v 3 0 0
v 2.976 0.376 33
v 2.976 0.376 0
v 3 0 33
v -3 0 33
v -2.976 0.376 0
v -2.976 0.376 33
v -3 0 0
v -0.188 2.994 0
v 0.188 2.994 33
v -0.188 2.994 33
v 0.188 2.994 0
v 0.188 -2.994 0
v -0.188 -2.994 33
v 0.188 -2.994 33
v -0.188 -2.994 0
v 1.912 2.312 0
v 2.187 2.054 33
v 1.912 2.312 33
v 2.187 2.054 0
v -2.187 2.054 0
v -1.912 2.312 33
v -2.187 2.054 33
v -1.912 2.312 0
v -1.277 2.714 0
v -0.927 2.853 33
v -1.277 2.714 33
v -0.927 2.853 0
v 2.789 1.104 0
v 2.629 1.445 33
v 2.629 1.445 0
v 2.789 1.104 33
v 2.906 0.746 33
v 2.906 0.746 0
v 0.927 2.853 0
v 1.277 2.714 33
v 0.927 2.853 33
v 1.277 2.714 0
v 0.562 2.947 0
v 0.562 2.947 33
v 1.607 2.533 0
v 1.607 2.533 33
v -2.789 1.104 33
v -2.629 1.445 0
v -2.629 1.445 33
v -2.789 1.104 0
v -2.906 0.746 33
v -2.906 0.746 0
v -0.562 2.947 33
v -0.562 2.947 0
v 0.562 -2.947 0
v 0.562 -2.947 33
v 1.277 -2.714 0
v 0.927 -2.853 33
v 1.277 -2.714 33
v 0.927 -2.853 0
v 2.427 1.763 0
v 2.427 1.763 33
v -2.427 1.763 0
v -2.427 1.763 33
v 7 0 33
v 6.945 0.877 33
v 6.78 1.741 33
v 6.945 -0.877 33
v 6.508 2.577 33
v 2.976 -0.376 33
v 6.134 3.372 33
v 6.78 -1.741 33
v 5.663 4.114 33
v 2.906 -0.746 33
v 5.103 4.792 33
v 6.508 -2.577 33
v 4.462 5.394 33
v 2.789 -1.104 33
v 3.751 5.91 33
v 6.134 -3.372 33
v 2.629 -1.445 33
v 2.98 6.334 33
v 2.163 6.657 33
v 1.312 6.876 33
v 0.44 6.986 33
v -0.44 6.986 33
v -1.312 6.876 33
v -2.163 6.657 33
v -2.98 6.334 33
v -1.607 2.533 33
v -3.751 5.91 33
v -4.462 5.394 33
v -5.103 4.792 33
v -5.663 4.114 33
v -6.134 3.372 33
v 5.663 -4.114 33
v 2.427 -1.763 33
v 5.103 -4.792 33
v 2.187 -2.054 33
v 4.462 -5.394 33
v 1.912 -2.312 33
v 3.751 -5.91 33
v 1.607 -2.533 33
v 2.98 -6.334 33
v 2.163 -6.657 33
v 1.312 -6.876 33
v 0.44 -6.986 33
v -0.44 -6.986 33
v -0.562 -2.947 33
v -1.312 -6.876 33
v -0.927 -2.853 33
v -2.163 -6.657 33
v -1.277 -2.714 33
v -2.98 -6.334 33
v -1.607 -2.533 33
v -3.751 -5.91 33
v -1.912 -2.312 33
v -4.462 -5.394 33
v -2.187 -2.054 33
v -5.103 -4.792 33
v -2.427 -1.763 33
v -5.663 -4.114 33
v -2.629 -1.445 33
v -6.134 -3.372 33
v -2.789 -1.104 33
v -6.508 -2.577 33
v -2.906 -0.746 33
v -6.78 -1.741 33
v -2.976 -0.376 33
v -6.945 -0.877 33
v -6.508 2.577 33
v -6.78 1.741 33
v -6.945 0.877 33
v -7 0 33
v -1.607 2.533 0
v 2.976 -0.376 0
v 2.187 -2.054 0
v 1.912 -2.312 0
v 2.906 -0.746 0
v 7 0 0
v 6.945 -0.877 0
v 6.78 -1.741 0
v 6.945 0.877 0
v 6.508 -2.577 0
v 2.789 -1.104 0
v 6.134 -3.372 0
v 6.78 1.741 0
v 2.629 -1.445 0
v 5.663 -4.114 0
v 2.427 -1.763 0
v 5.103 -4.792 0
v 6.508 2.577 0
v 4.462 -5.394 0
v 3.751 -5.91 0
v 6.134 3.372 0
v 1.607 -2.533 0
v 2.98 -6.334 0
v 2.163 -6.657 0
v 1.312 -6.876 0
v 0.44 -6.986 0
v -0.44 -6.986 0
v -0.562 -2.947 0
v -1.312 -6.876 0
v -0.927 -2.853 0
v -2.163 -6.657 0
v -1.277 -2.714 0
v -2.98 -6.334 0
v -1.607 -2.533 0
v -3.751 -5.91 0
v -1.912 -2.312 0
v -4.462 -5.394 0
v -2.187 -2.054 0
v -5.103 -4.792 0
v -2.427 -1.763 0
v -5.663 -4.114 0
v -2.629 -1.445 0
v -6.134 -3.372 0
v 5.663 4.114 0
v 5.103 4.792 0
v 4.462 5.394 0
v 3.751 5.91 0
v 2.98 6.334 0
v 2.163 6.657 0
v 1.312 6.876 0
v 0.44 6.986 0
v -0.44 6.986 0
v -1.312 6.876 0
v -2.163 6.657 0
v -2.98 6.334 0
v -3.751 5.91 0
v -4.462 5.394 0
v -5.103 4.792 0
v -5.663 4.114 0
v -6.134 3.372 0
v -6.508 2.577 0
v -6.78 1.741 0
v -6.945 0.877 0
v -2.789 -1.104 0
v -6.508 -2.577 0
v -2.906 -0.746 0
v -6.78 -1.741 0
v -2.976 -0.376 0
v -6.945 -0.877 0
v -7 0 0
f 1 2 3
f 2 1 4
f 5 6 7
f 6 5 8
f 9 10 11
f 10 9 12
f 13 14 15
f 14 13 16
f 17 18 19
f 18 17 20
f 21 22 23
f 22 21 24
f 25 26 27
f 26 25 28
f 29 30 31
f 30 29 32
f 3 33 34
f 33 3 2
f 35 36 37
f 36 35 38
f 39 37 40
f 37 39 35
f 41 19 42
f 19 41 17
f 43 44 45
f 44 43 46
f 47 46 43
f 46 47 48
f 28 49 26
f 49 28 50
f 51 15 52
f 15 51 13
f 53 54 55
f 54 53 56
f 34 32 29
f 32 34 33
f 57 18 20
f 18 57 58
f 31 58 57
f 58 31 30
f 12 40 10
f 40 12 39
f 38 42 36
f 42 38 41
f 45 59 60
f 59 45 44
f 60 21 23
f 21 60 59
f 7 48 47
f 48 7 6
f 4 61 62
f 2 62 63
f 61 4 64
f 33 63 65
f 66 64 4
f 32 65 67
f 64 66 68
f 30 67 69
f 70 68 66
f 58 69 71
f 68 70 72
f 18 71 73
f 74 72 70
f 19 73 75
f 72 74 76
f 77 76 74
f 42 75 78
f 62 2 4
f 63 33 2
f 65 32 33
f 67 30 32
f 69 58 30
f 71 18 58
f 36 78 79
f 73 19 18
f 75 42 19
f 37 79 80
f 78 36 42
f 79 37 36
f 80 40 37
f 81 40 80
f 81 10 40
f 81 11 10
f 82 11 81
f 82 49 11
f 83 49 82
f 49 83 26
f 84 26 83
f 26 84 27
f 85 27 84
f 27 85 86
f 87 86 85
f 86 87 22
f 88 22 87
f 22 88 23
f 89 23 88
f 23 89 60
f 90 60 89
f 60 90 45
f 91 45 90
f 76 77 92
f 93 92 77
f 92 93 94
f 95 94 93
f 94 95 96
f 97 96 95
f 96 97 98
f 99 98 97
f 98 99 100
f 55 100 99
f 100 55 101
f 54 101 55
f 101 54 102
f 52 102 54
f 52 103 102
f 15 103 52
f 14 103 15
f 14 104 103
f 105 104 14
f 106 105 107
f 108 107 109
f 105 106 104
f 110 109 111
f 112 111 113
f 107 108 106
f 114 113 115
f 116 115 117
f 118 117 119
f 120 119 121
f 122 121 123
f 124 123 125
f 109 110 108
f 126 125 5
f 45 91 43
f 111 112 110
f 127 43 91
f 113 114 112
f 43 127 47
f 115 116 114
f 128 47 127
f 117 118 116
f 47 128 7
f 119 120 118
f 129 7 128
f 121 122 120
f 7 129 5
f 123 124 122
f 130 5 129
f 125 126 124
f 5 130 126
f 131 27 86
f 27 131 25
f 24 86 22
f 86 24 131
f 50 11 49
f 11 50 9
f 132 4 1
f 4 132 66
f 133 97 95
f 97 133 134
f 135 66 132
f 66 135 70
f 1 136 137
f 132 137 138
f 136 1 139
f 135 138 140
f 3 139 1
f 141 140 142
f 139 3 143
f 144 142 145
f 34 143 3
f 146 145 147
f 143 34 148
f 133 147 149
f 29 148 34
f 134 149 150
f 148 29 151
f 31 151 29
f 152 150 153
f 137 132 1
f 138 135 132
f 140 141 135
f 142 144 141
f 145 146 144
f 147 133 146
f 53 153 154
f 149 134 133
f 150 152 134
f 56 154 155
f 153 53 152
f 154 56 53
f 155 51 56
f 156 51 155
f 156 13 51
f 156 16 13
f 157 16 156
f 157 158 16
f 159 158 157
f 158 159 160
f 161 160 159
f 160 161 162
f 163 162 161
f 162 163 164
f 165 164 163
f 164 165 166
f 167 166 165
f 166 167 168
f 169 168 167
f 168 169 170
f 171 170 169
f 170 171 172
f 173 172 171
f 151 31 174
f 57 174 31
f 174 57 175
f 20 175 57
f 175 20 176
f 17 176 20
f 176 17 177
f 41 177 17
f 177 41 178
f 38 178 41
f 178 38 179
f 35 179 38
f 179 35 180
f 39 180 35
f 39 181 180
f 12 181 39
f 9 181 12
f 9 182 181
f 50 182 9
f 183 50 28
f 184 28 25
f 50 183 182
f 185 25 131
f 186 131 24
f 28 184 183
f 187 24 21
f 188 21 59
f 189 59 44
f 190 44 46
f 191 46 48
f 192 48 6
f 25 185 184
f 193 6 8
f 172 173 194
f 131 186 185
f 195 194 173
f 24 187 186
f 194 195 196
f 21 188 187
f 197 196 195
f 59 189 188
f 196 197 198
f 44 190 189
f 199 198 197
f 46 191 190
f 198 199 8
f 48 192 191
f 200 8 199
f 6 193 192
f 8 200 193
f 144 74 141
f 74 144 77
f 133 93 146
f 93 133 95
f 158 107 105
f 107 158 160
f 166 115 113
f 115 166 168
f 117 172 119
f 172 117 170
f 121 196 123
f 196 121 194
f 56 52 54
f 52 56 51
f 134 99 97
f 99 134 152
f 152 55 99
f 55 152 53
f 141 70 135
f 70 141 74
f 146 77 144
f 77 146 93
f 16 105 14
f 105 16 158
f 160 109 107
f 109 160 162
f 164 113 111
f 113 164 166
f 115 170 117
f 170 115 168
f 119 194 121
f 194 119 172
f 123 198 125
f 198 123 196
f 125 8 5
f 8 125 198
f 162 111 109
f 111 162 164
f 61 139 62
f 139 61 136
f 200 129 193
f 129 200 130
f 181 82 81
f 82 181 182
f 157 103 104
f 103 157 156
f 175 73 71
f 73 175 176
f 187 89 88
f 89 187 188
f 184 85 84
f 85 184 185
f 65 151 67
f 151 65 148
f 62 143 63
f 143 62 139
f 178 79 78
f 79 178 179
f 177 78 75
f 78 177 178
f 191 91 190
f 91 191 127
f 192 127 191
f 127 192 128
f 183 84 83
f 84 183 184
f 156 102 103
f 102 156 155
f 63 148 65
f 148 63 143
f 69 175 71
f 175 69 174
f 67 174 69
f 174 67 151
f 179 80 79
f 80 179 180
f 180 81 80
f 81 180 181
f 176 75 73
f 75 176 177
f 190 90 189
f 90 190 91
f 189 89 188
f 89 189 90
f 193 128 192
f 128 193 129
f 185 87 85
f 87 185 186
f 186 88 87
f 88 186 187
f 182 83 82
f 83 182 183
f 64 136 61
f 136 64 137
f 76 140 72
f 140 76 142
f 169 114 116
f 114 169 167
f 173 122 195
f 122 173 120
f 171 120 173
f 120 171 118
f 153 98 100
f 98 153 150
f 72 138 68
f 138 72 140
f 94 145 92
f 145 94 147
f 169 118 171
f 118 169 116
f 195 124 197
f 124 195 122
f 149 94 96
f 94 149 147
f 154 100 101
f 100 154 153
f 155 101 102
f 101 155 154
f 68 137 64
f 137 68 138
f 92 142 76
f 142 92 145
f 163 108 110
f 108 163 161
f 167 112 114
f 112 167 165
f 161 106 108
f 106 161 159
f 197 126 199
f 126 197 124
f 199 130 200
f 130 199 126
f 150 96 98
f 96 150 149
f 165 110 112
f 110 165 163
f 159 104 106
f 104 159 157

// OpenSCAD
$fn = 50;


difference() {
	union() {
		cylinder(h = 33, r = 7.0000000000);
	}
	union() {
		translate(v = [0, 0, -100]) {
			cylinder(h = 200, r = 3.0000000000);
		}
		translate(v = [0, 0, -100]) {
			cylinder(h = 200, r = 1.5000000000);
		}
	}
}
